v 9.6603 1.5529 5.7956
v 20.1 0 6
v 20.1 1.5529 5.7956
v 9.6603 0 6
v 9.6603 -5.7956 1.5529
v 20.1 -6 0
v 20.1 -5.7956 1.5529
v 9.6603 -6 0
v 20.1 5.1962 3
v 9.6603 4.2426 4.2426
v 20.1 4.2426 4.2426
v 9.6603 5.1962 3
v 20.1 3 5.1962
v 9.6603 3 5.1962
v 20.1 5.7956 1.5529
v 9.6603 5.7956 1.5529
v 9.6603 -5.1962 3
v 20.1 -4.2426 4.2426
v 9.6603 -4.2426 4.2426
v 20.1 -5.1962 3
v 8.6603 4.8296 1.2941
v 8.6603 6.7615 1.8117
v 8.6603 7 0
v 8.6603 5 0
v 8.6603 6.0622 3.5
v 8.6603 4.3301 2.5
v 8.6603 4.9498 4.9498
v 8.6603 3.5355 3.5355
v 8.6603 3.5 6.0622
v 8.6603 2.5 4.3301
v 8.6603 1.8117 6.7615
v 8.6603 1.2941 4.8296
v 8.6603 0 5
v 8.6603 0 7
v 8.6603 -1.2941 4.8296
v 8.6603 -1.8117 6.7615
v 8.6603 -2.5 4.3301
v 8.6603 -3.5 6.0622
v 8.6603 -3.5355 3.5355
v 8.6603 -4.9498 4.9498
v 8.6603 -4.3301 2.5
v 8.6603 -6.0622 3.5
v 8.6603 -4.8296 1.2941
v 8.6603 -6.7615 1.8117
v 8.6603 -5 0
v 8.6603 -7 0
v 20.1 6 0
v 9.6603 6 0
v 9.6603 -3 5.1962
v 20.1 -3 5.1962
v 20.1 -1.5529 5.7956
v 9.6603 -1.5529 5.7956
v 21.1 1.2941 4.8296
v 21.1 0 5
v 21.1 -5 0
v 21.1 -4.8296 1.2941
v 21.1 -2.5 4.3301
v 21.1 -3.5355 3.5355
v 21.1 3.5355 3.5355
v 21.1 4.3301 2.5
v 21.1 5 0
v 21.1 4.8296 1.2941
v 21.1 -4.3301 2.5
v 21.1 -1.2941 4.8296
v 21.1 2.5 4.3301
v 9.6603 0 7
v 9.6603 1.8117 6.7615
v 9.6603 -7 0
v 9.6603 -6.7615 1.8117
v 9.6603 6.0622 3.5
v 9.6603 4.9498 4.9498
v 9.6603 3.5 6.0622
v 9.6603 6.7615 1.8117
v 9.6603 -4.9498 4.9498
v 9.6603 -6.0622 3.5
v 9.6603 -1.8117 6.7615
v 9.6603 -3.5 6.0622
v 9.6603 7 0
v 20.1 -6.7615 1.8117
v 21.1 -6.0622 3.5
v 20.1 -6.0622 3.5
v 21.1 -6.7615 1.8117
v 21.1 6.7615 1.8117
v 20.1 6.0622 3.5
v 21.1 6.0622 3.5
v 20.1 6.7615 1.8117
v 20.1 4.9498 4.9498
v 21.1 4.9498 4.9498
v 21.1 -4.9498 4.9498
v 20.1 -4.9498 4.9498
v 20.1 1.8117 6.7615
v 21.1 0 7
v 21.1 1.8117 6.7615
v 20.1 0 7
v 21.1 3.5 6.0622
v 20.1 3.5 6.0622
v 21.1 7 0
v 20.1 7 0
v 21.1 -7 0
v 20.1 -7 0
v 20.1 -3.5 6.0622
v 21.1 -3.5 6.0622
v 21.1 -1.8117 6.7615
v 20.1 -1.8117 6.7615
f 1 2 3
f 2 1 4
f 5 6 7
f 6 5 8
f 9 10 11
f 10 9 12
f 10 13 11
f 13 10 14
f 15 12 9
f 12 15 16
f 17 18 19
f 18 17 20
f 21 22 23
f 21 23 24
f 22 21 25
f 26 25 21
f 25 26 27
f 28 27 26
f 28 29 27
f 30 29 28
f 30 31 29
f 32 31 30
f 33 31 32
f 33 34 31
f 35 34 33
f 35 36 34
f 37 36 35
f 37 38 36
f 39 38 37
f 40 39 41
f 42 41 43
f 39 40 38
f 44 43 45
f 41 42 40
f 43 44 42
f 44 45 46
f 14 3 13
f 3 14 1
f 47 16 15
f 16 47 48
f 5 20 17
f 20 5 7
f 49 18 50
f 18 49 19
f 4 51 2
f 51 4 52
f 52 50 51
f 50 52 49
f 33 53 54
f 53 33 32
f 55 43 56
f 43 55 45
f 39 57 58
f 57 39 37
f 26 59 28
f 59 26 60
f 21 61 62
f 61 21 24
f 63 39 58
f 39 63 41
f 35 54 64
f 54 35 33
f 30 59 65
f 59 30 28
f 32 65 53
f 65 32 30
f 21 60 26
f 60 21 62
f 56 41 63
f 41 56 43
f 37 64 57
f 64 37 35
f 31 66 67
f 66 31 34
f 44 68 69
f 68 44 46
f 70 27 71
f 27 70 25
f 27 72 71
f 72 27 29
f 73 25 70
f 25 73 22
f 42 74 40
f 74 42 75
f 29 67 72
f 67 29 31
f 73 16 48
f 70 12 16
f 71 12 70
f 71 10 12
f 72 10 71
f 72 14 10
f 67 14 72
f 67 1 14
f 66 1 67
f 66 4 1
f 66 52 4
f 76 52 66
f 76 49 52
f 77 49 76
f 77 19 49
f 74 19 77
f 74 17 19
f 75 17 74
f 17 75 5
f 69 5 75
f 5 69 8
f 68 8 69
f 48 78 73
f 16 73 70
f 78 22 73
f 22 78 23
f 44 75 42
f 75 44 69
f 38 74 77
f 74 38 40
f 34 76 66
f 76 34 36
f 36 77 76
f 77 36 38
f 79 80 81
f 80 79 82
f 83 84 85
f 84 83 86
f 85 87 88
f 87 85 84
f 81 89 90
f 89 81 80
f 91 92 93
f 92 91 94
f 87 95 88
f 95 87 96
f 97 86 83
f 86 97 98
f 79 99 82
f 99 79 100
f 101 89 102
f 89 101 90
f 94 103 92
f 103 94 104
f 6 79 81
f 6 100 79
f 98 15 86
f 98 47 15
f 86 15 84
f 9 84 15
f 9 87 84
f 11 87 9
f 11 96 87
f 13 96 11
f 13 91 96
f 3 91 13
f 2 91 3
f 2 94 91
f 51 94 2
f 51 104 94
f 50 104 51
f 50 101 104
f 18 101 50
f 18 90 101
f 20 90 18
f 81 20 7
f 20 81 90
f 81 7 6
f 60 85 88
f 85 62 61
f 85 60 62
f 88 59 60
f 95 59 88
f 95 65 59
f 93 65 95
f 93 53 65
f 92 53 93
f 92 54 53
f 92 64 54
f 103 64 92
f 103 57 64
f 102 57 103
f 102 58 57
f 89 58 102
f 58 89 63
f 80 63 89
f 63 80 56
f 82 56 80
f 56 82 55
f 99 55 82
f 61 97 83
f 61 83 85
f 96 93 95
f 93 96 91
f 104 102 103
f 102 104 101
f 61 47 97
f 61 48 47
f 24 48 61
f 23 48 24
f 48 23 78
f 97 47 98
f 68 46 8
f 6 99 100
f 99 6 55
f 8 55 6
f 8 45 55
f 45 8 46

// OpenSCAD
// file: ../build_environments.scad
// build_environments.scad: modules to build level sections
//

module pool(diameter=10.0, wall_height=2.0, step_width=3.0, connections=[])
{
    difference() {
        union() {
        difference() {
            cylinder(h=0.5,r1=diameter+step_width,r2=diameter+step_width,$fn=48);
            translate([0,0,-0.1])
                cylinder(h=0.7,r1=diameter,r2=diameter,$fn=48);
        }
        difference() {
            cylinder(h=wall_height,r1=diameter+step_width+1.0,r2=diameter+step_width+1.0,$fn=48);
            translate([0,0,-0.1])
                cylinder(h=wall_height+0.2,r1=diameter+step_width,r2=diameter+step_width,$fn=48);
        }
        }
    
        for (c = connections)
        {
            rotate([0,90,0]) {
                angle = atan2(c[1],c[0]);
                rotate([-angle,0,0]) {
                    cylinder(h=diameter+5.0,r1=c[2],r2=c[2],$fn=48);
                }
            }
        }
    }
}

module straight(length=10.0, width=2.0, dy1=0.0, dy2=0.0, dz=0.0)
{
    dims = [0, 0, 0, 0, 0, (dz/length)];
    matrix = [
        [ 1, dims[0], dims[1], 0 ],
        [ dims[2], 1, dims[4], 0 ],
        [ dims[5], dims[3], 1, 0 ],
        [ 0, 0, 0, 1 ]
    ];
    multmatrix(matrix)
    difference() {
        translate([dy1,0,0])
        union() {
            rotate([0,90,0]) {
                difference() {
                    cylinder(h=(length-dy1-dy2),r1=width+1.0,r2=width+1.0,$fn=24);
                    translate([0,0,-0.1])
                        cylinder(h=(length-dy1-dy2+0.2),r1=width,r2=width,$fn=24);
                }
                difference() {
                    cylinder(h=1.0,r1=width+2.0,r2=width+2.0,$fn=24);
                    translate([0,0,-0.1])
                        cylinder(h=1.2,r1=width,r2=width,$fn=24);
                }
                translate([0,0,(length-dy1-dy2)-1.0]) {
                    difference() {
                        cylinder(h=1.0,r1=width+2.0,r2=width+2.0,$fn=24);
                        translate([0,0,-0.1])
                            cylinder(h=1.2,r1=width,r2=width,$fn=24);
                    }
                }
            }
        }
        translate([0,0,-(2*width+4.0)/2])
            cube([3*length,3*length,2*width+4.0],center=true);
    }
}

module curve(p0=[0,0], center=[0,0], dir=1, angle=0.0, width=2.0)
{
    radius = sqrt((p0[0]-center[0])*(p0[0]-center[0]) + (p0[1]-center[1])*(p0[1]-center[1]));
    if (dir == 0) {
        difference() {
            rotate([0,0,-90])
            difference() {
                rotate_extrude(angle = angle, convexity = 10, $fn=32)
                    translate([radius, 0, 0])
                        circle(r = width+1.0,$fn=24);
                rotate([0,0,-1.0])
                    rotate_extrude(angle = angle+2.0, convexity = 10, $fn=32)
                        translate([radius, 0, 0])
                            circle(r = width,$fn=24);
            }
            translate([0,0,-(2*width+4.0)/2])
                cube([5*radius,5*radius,2*width+4.0],center=true);
        }
    }
    else {
        difference() {
            rotate([0,0,90])
            difference() {
                rotate_extrude(angle = -angle, convexity = 10, $fn=32)
                    translate([radius, 0, 0])
                        circle(r = width+1.0,$fn=24);
                rotate([0,0,1.0])
                    rotate_extrude(angle = -angle-2.0, convexity = 10, $fn=32)
                        translate([radius, 0, 0])
                            circle(r = width,$fn=24);
            }
            translate([0,0,-(2*width+4.0)/2])
                cube([5*radius,5*radius,2*width+4.0],center=true);
        }
    }

}

// test pool
//pool(diameter=12.0000, wall_height=3.0000, step_width=3.0000, connections=[[0.0000,-26.0000,2.0000], [23.6074,0.0000,2.0000]]);

// test straight, slope
//straight(length=26.0000, width=2.0000, dy1=11.8322, dy2=6.7082, dz=0.0000);
//straight(length=29.1549, width=12.0000, dy1=0.0000, dy2=0.0000, dz=-15.0000);

// test curve
//curve(p0=[23.6074, 0.0000], center=[23.6074, 5.0000], dir=0, angle=60.1011, width=2.0000);
//curve(p0=[33.6426, 12.4219], center=[37.9771, 9.9295], dir=1, angle=120.4627, width=2.0000);
// main file
use <../build_environments.scad>;
straight(length=21.1000, width=5.0000, dy1=8.6603, dy2=0.0000, dz=0.0000);
